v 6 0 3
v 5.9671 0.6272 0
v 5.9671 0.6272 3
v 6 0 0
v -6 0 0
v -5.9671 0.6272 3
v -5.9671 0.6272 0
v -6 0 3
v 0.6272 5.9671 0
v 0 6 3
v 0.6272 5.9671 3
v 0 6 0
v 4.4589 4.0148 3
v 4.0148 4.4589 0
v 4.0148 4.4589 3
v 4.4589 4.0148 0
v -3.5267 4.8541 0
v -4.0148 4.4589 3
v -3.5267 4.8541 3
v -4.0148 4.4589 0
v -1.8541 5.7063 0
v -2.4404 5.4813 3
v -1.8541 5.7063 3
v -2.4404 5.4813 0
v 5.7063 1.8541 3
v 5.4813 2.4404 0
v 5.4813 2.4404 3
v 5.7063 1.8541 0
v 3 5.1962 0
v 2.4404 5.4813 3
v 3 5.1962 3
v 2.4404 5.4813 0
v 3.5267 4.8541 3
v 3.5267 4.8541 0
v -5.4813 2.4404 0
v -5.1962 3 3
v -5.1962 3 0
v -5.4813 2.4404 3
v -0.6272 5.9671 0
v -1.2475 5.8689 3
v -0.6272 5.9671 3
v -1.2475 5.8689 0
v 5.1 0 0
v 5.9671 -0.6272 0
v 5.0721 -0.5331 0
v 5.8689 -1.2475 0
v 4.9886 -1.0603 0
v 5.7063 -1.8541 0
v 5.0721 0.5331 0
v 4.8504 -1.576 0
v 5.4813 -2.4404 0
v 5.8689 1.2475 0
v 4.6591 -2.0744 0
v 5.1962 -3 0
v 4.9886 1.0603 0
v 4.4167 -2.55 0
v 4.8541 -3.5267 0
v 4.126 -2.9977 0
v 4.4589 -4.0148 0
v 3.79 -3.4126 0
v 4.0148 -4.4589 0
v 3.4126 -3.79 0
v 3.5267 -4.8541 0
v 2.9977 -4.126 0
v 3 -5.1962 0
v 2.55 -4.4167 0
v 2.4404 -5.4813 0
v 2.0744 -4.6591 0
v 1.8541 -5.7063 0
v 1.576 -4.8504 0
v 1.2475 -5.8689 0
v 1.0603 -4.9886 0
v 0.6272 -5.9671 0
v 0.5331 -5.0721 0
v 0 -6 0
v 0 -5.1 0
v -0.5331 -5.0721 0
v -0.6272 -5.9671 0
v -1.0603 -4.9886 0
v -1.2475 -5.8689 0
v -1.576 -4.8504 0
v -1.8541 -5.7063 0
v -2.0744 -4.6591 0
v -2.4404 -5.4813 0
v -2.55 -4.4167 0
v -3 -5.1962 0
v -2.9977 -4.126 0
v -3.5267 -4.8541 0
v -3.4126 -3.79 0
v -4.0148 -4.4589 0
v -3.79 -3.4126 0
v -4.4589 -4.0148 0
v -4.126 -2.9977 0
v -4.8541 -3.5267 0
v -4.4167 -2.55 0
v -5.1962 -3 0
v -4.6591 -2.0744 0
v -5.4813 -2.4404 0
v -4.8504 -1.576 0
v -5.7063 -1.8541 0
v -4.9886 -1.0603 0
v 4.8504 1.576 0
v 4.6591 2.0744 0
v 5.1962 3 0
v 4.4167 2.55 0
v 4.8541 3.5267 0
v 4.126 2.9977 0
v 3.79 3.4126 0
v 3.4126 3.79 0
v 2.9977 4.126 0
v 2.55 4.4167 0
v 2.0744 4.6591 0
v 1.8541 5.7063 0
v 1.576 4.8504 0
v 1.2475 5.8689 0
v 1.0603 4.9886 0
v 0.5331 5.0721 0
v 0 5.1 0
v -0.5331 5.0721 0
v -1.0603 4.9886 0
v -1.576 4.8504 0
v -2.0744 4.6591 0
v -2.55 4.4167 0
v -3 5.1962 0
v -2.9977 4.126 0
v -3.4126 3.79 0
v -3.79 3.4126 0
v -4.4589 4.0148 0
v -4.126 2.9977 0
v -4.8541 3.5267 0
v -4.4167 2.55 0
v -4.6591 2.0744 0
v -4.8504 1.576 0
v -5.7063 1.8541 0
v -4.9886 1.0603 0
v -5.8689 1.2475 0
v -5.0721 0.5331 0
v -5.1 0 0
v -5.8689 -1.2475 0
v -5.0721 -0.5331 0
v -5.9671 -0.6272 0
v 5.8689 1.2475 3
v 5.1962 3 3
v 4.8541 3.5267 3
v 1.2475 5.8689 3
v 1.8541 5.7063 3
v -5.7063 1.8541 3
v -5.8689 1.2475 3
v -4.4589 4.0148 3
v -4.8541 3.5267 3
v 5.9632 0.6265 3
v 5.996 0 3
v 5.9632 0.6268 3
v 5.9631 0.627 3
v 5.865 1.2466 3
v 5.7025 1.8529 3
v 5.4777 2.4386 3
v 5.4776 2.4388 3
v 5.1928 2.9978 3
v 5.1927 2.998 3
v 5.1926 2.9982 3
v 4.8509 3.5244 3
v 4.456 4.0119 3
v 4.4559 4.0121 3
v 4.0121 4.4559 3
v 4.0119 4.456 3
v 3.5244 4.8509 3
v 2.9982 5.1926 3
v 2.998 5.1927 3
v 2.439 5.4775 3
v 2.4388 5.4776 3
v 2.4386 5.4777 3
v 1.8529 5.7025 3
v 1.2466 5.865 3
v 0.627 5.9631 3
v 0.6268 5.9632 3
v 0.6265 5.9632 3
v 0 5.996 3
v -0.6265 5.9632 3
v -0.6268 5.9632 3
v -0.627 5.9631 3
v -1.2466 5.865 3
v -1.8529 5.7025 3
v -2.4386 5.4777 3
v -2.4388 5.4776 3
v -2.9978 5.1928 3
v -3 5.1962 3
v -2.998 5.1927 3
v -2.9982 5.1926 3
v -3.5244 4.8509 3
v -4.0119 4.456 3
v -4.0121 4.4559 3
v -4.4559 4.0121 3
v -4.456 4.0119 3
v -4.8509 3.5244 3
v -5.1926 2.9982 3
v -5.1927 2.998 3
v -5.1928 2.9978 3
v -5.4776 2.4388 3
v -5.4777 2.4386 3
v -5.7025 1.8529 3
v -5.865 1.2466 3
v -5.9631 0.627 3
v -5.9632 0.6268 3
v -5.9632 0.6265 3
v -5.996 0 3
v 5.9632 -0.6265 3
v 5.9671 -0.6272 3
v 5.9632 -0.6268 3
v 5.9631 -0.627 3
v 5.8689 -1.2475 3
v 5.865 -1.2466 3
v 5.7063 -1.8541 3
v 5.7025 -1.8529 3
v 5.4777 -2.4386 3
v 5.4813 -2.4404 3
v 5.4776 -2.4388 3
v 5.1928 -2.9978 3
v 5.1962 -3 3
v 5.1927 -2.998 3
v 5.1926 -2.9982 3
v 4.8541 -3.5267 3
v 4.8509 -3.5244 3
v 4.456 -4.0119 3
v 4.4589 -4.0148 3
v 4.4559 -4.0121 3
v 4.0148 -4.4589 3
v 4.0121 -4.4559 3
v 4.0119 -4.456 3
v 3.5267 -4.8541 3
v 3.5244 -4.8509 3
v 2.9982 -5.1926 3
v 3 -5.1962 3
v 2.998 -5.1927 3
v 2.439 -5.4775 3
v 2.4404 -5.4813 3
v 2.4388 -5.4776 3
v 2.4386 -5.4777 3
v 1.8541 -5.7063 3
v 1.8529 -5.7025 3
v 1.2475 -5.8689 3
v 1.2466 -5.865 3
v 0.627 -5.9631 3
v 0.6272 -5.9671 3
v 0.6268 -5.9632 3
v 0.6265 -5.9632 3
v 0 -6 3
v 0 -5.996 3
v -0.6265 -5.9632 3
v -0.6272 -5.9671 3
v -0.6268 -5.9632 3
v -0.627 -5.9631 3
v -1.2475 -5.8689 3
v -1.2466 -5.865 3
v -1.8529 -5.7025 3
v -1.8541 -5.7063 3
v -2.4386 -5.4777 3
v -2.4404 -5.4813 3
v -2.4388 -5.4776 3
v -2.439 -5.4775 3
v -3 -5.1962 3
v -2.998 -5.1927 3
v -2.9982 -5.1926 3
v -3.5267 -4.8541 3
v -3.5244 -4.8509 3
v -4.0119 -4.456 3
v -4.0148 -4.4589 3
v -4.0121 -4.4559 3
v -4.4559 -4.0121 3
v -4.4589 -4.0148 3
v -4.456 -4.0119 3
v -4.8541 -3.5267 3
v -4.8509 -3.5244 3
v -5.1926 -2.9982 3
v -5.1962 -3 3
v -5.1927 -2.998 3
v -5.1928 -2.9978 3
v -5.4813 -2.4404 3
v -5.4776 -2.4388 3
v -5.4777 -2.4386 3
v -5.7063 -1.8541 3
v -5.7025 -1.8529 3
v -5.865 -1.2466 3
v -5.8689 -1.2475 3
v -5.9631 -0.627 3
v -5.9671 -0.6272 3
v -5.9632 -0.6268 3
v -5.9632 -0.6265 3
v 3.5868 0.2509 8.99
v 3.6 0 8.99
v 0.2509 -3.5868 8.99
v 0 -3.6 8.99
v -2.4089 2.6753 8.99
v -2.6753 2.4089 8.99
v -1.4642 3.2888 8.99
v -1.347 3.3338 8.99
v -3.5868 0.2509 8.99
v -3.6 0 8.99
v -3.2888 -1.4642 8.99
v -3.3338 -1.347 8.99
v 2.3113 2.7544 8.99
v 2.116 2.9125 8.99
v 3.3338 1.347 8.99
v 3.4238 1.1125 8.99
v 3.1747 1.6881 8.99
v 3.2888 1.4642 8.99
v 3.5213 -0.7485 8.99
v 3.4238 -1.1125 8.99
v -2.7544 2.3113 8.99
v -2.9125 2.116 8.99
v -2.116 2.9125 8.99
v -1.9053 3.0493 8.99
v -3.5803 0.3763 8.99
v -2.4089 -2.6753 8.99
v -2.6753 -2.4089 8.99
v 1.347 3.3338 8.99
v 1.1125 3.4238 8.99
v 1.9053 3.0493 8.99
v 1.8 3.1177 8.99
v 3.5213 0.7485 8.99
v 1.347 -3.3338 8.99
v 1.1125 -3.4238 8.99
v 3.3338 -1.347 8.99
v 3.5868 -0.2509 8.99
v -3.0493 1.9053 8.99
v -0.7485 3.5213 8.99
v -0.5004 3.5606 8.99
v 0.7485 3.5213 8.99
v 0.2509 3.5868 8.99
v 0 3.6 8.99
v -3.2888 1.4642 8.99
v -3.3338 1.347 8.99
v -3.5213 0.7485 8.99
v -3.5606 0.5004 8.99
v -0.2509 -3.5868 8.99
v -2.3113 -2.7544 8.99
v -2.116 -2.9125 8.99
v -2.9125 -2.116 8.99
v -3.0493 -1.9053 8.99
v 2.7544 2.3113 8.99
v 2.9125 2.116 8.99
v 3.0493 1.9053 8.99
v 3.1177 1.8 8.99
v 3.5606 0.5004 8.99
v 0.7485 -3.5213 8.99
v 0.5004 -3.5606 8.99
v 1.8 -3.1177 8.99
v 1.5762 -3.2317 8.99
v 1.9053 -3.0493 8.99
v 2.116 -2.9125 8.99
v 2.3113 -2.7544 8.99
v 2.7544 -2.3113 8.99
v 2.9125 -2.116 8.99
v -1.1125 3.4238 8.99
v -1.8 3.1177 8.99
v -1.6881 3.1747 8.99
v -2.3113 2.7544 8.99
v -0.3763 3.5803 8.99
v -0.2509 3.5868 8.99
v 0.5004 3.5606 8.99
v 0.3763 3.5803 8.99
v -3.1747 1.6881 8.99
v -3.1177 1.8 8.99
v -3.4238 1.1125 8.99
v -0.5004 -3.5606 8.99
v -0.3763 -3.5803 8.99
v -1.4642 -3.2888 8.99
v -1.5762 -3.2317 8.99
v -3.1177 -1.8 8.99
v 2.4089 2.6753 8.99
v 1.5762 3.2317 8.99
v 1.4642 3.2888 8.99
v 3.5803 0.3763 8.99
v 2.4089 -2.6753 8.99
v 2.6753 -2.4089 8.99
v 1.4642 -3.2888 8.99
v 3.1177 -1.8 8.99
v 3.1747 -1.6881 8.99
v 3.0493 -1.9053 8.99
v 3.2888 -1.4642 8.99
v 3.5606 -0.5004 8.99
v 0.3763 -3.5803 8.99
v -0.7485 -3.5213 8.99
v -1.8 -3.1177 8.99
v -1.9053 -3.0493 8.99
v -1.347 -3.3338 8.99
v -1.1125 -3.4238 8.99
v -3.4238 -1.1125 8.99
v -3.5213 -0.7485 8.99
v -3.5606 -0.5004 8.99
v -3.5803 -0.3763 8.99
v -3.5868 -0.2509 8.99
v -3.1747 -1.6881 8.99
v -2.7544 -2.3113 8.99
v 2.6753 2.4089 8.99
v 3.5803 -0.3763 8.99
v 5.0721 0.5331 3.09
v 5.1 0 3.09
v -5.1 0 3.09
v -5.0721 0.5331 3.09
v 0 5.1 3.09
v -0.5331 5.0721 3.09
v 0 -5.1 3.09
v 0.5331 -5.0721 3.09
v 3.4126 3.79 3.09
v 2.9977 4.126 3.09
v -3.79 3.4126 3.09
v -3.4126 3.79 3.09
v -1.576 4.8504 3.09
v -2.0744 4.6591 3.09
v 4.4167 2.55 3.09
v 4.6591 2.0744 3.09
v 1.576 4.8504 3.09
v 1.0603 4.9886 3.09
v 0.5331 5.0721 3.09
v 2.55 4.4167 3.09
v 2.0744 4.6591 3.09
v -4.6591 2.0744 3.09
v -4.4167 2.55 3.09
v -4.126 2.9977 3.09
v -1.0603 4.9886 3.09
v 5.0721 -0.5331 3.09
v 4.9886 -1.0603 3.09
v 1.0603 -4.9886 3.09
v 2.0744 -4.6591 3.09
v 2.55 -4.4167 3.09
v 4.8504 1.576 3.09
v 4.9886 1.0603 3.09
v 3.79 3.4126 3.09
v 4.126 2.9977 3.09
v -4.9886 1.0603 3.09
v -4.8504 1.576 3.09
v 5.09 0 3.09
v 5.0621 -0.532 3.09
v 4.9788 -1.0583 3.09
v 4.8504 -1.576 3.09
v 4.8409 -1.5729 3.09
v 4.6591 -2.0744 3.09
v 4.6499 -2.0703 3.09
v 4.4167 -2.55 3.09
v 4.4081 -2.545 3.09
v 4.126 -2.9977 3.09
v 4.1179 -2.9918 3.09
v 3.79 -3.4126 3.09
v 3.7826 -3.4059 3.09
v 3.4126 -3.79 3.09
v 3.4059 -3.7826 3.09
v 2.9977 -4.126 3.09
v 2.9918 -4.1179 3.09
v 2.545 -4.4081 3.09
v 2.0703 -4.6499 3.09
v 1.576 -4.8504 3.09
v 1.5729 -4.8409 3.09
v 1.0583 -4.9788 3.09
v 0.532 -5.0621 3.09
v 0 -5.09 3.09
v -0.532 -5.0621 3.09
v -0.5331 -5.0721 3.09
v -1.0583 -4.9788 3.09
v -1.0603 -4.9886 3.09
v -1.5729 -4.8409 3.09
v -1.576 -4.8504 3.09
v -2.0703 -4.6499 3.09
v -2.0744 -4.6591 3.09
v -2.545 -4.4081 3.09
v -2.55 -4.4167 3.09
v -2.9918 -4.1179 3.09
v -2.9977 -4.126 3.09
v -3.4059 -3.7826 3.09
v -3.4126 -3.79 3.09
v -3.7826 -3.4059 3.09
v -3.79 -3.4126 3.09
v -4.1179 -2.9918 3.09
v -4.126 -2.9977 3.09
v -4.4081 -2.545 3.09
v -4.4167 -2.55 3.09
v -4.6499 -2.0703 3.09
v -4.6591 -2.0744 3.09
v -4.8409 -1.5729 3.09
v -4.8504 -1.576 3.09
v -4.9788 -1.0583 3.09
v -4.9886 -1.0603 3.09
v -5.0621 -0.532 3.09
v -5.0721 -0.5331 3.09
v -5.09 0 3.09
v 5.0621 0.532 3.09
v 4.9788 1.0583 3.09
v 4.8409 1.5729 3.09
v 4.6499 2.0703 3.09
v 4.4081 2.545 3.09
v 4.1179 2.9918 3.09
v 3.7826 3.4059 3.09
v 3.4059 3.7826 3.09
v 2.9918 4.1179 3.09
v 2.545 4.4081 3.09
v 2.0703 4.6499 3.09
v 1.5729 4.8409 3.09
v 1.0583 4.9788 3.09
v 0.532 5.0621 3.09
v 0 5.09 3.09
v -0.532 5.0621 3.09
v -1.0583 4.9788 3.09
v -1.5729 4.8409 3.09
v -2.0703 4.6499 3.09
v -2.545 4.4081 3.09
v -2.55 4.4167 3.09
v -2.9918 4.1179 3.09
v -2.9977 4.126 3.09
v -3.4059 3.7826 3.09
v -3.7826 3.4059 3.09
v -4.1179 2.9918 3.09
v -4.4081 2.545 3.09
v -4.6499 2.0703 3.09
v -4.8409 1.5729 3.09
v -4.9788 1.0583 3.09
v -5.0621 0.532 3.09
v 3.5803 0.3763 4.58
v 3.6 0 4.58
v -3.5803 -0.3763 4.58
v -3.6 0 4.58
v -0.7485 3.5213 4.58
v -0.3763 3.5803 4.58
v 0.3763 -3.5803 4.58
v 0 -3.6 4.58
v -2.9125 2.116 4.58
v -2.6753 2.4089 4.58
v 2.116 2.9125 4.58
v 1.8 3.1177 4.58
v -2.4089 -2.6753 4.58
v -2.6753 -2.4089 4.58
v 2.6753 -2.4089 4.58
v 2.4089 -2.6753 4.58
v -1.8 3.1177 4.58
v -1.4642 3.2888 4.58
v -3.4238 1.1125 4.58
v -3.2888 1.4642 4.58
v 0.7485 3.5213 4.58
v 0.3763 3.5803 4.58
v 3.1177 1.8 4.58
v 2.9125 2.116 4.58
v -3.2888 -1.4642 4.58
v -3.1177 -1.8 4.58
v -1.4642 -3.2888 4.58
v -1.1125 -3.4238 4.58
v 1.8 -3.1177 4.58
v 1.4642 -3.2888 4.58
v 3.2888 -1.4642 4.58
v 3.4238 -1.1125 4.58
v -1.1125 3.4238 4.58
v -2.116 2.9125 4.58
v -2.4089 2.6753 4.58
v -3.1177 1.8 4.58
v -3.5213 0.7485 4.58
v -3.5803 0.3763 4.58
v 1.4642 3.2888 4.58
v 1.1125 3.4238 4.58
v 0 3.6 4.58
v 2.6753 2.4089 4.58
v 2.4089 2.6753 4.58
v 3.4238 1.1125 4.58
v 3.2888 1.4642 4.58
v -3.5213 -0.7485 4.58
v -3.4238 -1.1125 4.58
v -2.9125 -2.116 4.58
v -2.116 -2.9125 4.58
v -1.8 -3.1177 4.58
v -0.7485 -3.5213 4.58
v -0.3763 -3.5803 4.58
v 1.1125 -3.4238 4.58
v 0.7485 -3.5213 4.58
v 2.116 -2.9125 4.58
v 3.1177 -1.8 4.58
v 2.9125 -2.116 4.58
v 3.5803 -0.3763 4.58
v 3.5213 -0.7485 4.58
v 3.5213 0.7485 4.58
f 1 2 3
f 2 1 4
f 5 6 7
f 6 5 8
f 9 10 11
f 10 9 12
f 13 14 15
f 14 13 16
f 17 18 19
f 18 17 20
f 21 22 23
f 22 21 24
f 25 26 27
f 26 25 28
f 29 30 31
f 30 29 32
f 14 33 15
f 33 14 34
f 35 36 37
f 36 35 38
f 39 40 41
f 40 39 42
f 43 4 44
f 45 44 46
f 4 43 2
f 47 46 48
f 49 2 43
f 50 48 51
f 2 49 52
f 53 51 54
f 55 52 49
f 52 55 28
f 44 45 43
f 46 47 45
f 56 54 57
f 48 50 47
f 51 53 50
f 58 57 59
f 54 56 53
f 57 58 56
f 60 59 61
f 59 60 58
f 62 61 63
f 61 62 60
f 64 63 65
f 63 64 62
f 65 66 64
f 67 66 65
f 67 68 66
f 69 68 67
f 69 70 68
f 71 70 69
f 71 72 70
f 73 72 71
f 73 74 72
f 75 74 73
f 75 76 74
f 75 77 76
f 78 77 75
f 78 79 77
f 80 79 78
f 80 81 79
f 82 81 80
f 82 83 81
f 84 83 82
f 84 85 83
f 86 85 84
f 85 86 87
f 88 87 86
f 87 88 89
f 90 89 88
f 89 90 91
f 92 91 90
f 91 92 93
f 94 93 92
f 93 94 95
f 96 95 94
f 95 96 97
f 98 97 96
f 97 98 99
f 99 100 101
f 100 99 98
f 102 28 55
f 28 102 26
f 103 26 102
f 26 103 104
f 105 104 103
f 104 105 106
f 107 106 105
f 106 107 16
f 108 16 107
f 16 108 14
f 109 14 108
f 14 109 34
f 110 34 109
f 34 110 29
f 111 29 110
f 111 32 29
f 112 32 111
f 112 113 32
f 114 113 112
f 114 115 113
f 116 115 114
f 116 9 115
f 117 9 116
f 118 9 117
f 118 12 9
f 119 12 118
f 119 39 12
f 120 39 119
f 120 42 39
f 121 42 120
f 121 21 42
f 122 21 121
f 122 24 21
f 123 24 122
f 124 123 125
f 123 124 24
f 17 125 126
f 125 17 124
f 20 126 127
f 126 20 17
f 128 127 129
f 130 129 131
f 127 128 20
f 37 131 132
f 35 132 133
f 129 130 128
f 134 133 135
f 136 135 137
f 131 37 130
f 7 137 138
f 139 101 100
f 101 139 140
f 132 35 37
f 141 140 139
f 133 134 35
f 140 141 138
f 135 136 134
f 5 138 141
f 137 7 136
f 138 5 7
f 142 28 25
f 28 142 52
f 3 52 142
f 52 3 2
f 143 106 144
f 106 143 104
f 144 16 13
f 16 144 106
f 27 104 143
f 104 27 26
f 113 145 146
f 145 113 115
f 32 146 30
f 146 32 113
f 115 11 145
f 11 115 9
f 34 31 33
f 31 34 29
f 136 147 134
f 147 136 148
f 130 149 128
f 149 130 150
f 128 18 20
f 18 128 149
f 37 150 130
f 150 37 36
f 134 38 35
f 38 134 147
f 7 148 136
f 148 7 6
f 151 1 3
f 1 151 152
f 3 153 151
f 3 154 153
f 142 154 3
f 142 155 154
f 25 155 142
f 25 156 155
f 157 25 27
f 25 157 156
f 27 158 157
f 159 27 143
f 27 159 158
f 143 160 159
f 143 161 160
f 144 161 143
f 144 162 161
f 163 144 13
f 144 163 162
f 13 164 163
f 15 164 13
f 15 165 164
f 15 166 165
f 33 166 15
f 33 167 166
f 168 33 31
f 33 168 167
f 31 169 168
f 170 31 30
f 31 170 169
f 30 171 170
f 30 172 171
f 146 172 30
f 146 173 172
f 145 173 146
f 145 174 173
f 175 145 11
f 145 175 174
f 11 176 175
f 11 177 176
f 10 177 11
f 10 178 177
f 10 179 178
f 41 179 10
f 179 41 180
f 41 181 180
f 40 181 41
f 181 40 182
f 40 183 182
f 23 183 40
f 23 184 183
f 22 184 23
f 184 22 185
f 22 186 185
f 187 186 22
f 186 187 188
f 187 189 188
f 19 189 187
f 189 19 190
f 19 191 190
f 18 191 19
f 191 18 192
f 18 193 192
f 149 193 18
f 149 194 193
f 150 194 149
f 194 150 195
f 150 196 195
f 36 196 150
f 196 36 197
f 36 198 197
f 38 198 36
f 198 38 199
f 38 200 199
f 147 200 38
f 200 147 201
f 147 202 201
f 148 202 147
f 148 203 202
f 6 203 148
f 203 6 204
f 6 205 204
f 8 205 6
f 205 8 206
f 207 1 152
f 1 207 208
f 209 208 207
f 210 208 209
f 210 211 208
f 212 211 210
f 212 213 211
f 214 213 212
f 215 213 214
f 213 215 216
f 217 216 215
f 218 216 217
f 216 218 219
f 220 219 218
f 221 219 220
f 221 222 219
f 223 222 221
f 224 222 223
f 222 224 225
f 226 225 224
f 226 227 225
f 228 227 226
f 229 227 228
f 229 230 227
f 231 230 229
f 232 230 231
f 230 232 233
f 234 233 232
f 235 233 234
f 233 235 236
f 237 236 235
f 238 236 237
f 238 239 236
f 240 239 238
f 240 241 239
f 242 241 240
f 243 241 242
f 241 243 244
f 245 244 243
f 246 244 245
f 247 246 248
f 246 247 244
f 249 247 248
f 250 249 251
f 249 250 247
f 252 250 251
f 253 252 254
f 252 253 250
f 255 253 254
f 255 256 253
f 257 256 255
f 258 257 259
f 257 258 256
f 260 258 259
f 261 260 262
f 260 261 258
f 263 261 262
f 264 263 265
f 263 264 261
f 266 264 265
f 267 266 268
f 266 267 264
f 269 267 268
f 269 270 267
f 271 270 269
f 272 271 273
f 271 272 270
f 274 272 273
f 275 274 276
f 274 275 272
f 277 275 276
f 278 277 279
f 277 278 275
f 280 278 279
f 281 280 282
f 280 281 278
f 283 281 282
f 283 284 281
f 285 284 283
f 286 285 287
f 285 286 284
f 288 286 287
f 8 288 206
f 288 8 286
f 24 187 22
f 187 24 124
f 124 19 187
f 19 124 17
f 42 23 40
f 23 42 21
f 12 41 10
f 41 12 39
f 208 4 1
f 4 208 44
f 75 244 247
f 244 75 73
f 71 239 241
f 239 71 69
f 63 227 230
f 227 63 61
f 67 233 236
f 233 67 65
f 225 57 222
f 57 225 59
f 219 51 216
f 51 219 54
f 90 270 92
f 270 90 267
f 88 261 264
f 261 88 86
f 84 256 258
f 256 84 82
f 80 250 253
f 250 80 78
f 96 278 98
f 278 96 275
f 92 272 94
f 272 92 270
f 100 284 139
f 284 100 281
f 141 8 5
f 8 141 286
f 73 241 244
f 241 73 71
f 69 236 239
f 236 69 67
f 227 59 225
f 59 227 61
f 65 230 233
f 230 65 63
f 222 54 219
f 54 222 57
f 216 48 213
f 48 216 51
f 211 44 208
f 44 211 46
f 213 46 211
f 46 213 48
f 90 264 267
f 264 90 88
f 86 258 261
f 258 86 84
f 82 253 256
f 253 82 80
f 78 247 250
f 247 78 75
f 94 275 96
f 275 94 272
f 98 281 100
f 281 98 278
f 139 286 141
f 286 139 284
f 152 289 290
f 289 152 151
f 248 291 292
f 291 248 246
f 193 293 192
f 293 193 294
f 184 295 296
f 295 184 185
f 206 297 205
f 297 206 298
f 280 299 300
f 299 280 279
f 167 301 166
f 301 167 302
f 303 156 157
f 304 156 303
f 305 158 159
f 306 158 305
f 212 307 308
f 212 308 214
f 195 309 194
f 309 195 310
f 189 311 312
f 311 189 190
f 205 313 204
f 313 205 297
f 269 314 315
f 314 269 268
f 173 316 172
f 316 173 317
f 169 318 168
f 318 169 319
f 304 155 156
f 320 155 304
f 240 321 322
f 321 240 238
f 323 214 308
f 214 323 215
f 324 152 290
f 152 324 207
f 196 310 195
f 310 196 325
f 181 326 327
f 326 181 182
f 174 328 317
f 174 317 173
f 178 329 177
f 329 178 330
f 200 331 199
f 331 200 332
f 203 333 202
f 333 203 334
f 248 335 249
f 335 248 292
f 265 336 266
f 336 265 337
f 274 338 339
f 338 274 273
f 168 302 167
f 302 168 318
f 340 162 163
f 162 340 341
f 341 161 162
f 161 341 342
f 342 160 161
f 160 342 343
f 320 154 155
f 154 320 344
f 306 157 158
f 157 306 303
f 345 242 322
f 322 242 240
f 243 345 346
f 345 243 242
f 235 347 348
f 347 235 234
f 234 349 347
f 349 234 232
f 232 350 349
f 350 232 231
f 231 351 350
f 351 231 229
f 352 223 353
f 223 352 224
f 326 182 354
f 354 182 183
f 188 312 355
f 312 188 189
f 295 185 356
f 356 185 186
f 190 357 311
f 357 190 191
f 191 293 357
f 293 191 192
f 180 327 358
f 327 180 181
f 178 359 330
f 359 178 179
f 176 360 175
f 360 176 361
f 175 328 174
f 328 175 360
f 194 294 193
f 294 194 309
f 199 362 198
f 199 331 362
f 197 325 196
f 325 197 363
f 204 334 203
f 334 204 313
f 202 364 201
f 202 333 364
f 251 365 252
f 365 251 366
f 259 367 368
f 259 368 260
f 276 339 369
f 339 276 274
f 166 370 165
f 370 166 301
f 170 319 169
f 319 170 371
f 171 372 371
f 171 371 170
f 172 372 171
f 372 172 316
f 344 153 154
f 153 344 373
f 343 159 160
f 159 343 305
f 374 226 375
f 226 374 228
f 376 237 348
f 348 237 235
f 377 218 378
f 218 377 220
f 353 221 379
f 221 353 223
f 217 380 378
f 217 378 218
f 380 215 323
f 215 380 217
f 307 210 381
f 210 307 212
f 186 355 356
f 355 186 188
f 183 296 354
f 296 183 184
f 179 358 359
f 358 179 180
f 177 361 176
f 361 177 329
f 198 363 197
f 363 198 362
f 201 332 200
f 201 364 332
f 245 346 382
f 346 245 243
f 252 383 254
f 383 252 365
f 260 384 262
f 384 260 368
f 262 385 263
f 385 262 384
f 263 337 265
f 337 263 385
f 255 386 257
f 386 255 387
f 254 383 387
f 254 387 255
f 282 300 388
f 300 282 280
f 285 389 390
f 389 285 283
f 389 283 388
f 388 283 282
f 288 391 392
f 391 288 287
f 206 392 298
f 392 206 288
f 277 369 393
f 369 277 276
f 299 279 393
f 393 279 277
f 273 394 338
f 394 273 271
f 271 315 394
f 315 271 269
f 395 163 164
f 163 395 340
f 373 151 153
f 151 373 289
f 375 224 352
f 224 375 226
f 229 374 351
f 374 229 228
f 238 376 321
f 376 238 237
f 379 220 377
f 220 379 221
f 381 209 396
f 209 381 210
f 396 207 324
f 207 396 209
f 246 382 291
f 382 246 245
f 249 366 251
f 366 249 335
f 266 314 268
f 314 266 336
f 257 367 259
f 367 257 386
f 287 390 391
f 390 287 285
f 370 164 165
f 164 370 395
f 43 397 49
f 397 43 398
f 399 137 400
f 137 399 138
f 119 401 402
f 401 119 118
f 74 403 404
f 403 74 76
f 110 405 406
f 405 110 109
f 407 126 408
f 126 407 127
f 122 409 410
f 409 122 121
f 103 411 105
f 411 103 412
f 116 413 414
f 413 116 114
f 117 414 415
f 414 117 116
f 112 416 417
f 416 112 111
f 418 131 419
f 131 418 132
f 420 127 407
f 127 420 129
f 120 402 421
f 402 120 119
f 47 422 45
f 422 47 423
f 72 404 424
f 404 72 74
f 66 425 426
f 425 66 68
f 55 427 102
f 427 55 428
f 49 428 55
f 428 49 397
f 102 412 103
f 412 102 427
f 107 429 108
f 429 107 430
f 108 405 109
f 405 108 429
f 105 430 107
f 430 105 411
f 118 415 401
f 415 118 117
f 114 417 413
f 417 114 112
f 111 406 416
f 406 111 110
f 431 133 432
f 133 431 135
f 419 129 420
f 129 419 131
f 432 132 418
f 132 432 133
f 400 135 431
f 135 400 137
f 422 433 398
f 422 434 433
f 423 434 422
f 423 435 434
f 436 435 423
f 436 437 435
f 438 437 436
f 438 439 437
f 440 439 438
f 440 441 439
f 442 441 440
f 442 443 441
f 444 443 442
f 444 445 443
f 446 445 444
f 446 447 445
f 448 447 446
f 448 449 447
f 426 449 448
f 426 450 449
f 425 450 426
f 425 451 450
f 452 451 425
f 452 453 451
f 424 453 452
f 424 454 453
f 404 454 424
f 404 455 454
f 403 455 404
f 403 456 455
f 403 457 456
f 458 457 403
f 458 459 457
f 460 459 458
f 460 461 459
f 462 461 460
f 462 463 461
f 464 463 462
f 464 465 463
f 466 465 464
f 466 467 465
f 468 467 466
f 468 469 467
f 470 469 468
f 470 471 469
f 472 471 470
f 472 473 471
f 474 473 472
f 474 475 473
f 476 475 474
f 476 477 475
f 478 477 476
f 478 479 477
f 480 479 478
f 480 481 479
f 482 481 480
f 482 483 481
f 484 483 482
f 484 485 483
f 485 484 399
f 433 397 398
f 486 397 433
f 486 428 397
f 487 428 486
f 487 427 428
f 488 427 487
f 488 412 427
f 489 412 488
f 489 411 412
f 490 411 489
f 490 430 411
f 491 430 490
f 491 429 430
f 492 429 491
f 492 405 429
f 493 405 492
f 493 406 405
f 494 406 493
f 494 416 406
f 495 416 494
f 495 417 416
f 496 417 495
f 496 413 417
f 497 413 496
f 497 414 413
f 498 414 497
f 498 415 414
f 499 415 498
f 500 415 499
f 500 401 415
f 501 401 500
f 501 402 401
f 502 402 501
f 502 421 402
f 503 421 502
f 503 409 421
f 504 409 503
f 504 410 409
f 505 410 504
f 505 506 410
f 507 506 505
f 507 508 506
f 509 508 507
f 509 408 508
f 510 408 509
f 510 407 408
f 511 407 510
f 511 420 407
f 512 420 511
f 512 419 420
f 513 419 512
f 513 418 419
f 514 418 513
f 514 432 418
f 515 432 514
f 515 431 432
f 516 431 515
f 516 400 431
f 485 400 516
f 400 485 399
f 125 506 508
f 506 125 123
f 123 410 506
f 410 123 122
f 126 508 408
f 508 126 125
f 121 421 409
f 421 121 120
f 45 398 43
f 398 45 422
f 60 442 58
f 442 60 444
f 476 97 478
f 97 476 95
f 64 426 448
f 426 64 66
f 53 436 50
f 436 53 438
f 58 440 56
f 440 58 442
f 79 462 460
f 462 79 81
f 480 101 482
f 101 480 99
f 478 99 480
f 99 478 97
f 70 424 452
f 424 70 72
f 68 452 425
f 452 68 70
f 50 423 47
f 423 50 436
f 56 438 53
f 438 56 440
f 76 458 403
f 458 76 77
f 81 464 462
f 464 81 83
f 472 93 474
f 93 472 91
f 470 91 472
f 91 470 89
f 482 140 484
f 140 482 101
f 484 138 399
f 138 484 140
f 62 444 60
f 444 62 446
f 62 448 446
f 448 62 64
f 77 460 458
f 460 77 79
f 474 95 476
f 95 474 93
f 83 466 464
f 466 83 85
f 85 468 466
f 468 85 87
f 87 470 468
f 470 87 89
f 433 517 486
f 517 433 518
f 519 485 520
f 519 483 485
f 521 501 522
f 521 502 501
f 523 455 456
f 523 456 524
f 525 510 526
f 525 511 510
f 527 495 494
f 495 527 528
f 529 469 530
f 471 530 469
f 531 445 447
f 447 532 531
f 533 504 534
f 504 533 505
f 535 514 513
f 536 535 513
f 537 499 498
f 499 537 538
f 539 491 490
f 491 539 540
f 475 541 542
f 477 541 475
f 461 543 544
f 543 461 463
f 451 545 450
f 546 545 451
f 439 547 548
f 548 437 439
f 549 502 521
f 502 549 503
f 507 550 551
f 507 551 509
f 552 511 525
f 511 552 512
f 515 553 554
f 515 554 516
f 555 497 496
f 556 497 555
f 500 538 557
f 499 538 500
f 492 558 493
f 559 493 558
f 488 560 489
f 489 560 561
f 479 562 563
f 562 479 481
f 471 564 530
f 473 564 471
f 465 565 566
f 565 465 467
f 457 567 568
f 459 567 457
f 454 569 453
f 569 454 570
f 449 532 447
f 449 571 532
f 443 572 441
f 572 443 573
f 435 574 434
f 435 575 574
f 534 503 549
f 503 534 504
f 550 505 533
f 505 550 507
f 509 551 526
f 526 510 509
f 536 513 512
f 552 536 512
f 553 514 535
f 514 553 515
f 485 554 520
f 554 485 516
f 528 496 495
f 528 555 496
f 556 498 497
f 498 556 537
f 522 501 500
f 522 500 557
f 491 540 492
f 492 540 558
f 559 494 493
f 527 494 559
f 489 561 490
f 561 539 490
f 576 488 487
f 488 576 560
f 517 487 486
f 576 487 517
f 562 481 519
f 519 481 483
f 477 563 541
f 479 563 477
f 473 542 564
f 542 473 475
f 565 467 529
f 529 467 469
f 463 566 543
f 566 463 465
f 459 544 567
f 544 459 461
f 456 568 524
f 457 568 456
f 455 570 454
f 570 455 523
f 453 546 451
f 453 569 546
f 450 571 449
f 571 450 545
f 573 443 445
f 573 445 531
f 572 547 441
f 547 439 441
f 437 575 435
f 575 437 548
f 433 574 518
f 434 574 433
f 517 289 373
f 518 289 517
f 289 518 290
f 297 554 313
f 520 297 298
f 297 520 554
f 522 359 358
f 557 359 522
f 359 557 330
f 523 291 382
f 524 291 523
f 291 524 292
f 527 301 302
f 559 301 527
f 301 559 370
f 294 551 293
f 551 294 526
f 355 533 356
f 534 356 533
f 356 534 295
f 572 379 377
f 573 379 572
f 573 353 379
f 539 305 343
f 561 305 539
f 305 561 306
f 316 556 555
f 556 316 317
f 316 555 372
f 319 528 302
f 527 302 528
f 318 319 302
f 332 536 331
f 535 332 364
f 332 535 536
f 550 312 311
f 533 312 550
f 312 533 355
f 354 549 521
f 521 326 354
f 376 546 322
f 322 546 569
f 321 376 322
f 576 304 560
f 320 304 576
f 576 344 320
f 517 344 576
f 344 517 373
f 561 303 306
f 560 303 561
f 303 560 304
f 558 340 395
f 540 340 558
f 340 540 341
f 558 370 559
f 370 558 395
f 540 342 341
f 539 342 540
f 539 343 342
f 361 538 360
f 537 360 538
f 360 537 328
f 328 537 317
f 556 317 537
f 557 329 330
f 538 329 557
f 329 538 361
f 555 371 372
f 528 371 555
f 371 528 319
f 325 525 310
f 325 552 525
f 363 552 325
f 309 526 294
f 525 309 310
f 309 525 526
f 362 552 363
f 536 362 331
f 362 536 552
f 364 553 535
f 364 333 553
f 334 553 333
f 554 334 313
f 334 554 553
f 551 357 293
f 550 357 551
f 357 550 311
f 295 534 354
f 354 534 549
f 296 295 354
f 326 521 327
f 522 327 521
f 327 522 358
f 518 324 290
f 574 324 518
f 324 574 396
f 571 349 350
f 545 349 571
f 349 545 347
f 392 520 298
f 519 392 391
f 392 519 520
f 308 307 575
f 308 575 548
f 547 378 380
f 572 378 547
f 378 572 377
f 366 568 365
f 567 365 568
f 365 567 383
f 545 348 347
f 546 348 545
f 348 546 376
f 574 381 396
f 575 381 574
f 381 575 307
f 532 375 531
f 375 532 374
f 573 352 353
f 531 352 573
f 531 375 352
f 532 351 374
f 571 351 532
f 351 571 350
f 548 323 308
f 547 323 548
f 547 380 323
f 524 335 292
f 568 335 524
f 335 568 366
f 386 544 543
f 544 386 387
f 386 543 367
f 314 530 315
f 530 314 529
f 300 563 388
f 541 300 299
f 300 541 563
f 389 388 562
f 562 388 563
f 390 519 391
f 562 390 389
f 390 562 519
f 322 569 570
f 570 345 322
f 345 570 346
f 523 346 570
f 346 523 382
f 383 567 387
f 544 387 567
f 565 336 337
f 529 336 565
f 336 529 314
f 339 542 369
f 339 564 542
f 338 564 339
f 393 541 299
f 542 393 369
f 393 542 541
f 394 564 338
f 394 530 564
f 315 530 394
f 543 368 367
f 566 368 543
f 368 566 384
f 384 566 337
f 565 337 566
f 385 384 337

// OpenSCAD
mm=1;
eps=0.01;
$fn=60;

module magnet(th) {
    cylinder(r = 5*mm+th, h = 3*mm+th);
    translate([0,0,3*mm+th-eps])
    cylinder(r1=5*mm+th,r2=0,h=5*mm+th);
}

module shaft(th, height) {
    cylinder(r=3.5*mm+th, height);
}

module part(th, height) {
    magnet(th);
    translate([0,0,2*mm])
    shaft(th,height);
}

module shell(){
    cylinder(r=6*mm,h=3*mm);
    translate([0,0,3*mm-eps])
    cylinder(r1=6*mm, r2=2*mm, h=10*mm);  
}

difference(){
    shell();
    translate([0,0,-eps])
    part(0.1*mm,100*mm);
    
}
